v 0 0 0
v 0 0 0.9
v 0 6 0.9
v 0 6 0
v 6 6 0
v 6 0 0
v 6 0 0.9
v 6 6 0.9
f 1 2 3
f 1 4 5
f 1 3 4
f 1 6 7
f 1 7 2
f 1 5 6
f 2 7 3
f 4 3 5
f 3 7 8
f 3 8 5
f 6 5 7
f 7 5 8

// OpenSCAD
/* Warning, this is a very basic generator with a lot of approximation 
input data : [VQFN, VMX, 6x6x0.9mm, 40, , A, C04-00344A]
generated by com.zoubworld.electronics.cad.model3d.Basic
Date : Sun Feb 15 10:50:48 CET 2026
*/

//body
color("black")
translate([0,0,0])
cube([6.0,6.0,0.9], center=false);
